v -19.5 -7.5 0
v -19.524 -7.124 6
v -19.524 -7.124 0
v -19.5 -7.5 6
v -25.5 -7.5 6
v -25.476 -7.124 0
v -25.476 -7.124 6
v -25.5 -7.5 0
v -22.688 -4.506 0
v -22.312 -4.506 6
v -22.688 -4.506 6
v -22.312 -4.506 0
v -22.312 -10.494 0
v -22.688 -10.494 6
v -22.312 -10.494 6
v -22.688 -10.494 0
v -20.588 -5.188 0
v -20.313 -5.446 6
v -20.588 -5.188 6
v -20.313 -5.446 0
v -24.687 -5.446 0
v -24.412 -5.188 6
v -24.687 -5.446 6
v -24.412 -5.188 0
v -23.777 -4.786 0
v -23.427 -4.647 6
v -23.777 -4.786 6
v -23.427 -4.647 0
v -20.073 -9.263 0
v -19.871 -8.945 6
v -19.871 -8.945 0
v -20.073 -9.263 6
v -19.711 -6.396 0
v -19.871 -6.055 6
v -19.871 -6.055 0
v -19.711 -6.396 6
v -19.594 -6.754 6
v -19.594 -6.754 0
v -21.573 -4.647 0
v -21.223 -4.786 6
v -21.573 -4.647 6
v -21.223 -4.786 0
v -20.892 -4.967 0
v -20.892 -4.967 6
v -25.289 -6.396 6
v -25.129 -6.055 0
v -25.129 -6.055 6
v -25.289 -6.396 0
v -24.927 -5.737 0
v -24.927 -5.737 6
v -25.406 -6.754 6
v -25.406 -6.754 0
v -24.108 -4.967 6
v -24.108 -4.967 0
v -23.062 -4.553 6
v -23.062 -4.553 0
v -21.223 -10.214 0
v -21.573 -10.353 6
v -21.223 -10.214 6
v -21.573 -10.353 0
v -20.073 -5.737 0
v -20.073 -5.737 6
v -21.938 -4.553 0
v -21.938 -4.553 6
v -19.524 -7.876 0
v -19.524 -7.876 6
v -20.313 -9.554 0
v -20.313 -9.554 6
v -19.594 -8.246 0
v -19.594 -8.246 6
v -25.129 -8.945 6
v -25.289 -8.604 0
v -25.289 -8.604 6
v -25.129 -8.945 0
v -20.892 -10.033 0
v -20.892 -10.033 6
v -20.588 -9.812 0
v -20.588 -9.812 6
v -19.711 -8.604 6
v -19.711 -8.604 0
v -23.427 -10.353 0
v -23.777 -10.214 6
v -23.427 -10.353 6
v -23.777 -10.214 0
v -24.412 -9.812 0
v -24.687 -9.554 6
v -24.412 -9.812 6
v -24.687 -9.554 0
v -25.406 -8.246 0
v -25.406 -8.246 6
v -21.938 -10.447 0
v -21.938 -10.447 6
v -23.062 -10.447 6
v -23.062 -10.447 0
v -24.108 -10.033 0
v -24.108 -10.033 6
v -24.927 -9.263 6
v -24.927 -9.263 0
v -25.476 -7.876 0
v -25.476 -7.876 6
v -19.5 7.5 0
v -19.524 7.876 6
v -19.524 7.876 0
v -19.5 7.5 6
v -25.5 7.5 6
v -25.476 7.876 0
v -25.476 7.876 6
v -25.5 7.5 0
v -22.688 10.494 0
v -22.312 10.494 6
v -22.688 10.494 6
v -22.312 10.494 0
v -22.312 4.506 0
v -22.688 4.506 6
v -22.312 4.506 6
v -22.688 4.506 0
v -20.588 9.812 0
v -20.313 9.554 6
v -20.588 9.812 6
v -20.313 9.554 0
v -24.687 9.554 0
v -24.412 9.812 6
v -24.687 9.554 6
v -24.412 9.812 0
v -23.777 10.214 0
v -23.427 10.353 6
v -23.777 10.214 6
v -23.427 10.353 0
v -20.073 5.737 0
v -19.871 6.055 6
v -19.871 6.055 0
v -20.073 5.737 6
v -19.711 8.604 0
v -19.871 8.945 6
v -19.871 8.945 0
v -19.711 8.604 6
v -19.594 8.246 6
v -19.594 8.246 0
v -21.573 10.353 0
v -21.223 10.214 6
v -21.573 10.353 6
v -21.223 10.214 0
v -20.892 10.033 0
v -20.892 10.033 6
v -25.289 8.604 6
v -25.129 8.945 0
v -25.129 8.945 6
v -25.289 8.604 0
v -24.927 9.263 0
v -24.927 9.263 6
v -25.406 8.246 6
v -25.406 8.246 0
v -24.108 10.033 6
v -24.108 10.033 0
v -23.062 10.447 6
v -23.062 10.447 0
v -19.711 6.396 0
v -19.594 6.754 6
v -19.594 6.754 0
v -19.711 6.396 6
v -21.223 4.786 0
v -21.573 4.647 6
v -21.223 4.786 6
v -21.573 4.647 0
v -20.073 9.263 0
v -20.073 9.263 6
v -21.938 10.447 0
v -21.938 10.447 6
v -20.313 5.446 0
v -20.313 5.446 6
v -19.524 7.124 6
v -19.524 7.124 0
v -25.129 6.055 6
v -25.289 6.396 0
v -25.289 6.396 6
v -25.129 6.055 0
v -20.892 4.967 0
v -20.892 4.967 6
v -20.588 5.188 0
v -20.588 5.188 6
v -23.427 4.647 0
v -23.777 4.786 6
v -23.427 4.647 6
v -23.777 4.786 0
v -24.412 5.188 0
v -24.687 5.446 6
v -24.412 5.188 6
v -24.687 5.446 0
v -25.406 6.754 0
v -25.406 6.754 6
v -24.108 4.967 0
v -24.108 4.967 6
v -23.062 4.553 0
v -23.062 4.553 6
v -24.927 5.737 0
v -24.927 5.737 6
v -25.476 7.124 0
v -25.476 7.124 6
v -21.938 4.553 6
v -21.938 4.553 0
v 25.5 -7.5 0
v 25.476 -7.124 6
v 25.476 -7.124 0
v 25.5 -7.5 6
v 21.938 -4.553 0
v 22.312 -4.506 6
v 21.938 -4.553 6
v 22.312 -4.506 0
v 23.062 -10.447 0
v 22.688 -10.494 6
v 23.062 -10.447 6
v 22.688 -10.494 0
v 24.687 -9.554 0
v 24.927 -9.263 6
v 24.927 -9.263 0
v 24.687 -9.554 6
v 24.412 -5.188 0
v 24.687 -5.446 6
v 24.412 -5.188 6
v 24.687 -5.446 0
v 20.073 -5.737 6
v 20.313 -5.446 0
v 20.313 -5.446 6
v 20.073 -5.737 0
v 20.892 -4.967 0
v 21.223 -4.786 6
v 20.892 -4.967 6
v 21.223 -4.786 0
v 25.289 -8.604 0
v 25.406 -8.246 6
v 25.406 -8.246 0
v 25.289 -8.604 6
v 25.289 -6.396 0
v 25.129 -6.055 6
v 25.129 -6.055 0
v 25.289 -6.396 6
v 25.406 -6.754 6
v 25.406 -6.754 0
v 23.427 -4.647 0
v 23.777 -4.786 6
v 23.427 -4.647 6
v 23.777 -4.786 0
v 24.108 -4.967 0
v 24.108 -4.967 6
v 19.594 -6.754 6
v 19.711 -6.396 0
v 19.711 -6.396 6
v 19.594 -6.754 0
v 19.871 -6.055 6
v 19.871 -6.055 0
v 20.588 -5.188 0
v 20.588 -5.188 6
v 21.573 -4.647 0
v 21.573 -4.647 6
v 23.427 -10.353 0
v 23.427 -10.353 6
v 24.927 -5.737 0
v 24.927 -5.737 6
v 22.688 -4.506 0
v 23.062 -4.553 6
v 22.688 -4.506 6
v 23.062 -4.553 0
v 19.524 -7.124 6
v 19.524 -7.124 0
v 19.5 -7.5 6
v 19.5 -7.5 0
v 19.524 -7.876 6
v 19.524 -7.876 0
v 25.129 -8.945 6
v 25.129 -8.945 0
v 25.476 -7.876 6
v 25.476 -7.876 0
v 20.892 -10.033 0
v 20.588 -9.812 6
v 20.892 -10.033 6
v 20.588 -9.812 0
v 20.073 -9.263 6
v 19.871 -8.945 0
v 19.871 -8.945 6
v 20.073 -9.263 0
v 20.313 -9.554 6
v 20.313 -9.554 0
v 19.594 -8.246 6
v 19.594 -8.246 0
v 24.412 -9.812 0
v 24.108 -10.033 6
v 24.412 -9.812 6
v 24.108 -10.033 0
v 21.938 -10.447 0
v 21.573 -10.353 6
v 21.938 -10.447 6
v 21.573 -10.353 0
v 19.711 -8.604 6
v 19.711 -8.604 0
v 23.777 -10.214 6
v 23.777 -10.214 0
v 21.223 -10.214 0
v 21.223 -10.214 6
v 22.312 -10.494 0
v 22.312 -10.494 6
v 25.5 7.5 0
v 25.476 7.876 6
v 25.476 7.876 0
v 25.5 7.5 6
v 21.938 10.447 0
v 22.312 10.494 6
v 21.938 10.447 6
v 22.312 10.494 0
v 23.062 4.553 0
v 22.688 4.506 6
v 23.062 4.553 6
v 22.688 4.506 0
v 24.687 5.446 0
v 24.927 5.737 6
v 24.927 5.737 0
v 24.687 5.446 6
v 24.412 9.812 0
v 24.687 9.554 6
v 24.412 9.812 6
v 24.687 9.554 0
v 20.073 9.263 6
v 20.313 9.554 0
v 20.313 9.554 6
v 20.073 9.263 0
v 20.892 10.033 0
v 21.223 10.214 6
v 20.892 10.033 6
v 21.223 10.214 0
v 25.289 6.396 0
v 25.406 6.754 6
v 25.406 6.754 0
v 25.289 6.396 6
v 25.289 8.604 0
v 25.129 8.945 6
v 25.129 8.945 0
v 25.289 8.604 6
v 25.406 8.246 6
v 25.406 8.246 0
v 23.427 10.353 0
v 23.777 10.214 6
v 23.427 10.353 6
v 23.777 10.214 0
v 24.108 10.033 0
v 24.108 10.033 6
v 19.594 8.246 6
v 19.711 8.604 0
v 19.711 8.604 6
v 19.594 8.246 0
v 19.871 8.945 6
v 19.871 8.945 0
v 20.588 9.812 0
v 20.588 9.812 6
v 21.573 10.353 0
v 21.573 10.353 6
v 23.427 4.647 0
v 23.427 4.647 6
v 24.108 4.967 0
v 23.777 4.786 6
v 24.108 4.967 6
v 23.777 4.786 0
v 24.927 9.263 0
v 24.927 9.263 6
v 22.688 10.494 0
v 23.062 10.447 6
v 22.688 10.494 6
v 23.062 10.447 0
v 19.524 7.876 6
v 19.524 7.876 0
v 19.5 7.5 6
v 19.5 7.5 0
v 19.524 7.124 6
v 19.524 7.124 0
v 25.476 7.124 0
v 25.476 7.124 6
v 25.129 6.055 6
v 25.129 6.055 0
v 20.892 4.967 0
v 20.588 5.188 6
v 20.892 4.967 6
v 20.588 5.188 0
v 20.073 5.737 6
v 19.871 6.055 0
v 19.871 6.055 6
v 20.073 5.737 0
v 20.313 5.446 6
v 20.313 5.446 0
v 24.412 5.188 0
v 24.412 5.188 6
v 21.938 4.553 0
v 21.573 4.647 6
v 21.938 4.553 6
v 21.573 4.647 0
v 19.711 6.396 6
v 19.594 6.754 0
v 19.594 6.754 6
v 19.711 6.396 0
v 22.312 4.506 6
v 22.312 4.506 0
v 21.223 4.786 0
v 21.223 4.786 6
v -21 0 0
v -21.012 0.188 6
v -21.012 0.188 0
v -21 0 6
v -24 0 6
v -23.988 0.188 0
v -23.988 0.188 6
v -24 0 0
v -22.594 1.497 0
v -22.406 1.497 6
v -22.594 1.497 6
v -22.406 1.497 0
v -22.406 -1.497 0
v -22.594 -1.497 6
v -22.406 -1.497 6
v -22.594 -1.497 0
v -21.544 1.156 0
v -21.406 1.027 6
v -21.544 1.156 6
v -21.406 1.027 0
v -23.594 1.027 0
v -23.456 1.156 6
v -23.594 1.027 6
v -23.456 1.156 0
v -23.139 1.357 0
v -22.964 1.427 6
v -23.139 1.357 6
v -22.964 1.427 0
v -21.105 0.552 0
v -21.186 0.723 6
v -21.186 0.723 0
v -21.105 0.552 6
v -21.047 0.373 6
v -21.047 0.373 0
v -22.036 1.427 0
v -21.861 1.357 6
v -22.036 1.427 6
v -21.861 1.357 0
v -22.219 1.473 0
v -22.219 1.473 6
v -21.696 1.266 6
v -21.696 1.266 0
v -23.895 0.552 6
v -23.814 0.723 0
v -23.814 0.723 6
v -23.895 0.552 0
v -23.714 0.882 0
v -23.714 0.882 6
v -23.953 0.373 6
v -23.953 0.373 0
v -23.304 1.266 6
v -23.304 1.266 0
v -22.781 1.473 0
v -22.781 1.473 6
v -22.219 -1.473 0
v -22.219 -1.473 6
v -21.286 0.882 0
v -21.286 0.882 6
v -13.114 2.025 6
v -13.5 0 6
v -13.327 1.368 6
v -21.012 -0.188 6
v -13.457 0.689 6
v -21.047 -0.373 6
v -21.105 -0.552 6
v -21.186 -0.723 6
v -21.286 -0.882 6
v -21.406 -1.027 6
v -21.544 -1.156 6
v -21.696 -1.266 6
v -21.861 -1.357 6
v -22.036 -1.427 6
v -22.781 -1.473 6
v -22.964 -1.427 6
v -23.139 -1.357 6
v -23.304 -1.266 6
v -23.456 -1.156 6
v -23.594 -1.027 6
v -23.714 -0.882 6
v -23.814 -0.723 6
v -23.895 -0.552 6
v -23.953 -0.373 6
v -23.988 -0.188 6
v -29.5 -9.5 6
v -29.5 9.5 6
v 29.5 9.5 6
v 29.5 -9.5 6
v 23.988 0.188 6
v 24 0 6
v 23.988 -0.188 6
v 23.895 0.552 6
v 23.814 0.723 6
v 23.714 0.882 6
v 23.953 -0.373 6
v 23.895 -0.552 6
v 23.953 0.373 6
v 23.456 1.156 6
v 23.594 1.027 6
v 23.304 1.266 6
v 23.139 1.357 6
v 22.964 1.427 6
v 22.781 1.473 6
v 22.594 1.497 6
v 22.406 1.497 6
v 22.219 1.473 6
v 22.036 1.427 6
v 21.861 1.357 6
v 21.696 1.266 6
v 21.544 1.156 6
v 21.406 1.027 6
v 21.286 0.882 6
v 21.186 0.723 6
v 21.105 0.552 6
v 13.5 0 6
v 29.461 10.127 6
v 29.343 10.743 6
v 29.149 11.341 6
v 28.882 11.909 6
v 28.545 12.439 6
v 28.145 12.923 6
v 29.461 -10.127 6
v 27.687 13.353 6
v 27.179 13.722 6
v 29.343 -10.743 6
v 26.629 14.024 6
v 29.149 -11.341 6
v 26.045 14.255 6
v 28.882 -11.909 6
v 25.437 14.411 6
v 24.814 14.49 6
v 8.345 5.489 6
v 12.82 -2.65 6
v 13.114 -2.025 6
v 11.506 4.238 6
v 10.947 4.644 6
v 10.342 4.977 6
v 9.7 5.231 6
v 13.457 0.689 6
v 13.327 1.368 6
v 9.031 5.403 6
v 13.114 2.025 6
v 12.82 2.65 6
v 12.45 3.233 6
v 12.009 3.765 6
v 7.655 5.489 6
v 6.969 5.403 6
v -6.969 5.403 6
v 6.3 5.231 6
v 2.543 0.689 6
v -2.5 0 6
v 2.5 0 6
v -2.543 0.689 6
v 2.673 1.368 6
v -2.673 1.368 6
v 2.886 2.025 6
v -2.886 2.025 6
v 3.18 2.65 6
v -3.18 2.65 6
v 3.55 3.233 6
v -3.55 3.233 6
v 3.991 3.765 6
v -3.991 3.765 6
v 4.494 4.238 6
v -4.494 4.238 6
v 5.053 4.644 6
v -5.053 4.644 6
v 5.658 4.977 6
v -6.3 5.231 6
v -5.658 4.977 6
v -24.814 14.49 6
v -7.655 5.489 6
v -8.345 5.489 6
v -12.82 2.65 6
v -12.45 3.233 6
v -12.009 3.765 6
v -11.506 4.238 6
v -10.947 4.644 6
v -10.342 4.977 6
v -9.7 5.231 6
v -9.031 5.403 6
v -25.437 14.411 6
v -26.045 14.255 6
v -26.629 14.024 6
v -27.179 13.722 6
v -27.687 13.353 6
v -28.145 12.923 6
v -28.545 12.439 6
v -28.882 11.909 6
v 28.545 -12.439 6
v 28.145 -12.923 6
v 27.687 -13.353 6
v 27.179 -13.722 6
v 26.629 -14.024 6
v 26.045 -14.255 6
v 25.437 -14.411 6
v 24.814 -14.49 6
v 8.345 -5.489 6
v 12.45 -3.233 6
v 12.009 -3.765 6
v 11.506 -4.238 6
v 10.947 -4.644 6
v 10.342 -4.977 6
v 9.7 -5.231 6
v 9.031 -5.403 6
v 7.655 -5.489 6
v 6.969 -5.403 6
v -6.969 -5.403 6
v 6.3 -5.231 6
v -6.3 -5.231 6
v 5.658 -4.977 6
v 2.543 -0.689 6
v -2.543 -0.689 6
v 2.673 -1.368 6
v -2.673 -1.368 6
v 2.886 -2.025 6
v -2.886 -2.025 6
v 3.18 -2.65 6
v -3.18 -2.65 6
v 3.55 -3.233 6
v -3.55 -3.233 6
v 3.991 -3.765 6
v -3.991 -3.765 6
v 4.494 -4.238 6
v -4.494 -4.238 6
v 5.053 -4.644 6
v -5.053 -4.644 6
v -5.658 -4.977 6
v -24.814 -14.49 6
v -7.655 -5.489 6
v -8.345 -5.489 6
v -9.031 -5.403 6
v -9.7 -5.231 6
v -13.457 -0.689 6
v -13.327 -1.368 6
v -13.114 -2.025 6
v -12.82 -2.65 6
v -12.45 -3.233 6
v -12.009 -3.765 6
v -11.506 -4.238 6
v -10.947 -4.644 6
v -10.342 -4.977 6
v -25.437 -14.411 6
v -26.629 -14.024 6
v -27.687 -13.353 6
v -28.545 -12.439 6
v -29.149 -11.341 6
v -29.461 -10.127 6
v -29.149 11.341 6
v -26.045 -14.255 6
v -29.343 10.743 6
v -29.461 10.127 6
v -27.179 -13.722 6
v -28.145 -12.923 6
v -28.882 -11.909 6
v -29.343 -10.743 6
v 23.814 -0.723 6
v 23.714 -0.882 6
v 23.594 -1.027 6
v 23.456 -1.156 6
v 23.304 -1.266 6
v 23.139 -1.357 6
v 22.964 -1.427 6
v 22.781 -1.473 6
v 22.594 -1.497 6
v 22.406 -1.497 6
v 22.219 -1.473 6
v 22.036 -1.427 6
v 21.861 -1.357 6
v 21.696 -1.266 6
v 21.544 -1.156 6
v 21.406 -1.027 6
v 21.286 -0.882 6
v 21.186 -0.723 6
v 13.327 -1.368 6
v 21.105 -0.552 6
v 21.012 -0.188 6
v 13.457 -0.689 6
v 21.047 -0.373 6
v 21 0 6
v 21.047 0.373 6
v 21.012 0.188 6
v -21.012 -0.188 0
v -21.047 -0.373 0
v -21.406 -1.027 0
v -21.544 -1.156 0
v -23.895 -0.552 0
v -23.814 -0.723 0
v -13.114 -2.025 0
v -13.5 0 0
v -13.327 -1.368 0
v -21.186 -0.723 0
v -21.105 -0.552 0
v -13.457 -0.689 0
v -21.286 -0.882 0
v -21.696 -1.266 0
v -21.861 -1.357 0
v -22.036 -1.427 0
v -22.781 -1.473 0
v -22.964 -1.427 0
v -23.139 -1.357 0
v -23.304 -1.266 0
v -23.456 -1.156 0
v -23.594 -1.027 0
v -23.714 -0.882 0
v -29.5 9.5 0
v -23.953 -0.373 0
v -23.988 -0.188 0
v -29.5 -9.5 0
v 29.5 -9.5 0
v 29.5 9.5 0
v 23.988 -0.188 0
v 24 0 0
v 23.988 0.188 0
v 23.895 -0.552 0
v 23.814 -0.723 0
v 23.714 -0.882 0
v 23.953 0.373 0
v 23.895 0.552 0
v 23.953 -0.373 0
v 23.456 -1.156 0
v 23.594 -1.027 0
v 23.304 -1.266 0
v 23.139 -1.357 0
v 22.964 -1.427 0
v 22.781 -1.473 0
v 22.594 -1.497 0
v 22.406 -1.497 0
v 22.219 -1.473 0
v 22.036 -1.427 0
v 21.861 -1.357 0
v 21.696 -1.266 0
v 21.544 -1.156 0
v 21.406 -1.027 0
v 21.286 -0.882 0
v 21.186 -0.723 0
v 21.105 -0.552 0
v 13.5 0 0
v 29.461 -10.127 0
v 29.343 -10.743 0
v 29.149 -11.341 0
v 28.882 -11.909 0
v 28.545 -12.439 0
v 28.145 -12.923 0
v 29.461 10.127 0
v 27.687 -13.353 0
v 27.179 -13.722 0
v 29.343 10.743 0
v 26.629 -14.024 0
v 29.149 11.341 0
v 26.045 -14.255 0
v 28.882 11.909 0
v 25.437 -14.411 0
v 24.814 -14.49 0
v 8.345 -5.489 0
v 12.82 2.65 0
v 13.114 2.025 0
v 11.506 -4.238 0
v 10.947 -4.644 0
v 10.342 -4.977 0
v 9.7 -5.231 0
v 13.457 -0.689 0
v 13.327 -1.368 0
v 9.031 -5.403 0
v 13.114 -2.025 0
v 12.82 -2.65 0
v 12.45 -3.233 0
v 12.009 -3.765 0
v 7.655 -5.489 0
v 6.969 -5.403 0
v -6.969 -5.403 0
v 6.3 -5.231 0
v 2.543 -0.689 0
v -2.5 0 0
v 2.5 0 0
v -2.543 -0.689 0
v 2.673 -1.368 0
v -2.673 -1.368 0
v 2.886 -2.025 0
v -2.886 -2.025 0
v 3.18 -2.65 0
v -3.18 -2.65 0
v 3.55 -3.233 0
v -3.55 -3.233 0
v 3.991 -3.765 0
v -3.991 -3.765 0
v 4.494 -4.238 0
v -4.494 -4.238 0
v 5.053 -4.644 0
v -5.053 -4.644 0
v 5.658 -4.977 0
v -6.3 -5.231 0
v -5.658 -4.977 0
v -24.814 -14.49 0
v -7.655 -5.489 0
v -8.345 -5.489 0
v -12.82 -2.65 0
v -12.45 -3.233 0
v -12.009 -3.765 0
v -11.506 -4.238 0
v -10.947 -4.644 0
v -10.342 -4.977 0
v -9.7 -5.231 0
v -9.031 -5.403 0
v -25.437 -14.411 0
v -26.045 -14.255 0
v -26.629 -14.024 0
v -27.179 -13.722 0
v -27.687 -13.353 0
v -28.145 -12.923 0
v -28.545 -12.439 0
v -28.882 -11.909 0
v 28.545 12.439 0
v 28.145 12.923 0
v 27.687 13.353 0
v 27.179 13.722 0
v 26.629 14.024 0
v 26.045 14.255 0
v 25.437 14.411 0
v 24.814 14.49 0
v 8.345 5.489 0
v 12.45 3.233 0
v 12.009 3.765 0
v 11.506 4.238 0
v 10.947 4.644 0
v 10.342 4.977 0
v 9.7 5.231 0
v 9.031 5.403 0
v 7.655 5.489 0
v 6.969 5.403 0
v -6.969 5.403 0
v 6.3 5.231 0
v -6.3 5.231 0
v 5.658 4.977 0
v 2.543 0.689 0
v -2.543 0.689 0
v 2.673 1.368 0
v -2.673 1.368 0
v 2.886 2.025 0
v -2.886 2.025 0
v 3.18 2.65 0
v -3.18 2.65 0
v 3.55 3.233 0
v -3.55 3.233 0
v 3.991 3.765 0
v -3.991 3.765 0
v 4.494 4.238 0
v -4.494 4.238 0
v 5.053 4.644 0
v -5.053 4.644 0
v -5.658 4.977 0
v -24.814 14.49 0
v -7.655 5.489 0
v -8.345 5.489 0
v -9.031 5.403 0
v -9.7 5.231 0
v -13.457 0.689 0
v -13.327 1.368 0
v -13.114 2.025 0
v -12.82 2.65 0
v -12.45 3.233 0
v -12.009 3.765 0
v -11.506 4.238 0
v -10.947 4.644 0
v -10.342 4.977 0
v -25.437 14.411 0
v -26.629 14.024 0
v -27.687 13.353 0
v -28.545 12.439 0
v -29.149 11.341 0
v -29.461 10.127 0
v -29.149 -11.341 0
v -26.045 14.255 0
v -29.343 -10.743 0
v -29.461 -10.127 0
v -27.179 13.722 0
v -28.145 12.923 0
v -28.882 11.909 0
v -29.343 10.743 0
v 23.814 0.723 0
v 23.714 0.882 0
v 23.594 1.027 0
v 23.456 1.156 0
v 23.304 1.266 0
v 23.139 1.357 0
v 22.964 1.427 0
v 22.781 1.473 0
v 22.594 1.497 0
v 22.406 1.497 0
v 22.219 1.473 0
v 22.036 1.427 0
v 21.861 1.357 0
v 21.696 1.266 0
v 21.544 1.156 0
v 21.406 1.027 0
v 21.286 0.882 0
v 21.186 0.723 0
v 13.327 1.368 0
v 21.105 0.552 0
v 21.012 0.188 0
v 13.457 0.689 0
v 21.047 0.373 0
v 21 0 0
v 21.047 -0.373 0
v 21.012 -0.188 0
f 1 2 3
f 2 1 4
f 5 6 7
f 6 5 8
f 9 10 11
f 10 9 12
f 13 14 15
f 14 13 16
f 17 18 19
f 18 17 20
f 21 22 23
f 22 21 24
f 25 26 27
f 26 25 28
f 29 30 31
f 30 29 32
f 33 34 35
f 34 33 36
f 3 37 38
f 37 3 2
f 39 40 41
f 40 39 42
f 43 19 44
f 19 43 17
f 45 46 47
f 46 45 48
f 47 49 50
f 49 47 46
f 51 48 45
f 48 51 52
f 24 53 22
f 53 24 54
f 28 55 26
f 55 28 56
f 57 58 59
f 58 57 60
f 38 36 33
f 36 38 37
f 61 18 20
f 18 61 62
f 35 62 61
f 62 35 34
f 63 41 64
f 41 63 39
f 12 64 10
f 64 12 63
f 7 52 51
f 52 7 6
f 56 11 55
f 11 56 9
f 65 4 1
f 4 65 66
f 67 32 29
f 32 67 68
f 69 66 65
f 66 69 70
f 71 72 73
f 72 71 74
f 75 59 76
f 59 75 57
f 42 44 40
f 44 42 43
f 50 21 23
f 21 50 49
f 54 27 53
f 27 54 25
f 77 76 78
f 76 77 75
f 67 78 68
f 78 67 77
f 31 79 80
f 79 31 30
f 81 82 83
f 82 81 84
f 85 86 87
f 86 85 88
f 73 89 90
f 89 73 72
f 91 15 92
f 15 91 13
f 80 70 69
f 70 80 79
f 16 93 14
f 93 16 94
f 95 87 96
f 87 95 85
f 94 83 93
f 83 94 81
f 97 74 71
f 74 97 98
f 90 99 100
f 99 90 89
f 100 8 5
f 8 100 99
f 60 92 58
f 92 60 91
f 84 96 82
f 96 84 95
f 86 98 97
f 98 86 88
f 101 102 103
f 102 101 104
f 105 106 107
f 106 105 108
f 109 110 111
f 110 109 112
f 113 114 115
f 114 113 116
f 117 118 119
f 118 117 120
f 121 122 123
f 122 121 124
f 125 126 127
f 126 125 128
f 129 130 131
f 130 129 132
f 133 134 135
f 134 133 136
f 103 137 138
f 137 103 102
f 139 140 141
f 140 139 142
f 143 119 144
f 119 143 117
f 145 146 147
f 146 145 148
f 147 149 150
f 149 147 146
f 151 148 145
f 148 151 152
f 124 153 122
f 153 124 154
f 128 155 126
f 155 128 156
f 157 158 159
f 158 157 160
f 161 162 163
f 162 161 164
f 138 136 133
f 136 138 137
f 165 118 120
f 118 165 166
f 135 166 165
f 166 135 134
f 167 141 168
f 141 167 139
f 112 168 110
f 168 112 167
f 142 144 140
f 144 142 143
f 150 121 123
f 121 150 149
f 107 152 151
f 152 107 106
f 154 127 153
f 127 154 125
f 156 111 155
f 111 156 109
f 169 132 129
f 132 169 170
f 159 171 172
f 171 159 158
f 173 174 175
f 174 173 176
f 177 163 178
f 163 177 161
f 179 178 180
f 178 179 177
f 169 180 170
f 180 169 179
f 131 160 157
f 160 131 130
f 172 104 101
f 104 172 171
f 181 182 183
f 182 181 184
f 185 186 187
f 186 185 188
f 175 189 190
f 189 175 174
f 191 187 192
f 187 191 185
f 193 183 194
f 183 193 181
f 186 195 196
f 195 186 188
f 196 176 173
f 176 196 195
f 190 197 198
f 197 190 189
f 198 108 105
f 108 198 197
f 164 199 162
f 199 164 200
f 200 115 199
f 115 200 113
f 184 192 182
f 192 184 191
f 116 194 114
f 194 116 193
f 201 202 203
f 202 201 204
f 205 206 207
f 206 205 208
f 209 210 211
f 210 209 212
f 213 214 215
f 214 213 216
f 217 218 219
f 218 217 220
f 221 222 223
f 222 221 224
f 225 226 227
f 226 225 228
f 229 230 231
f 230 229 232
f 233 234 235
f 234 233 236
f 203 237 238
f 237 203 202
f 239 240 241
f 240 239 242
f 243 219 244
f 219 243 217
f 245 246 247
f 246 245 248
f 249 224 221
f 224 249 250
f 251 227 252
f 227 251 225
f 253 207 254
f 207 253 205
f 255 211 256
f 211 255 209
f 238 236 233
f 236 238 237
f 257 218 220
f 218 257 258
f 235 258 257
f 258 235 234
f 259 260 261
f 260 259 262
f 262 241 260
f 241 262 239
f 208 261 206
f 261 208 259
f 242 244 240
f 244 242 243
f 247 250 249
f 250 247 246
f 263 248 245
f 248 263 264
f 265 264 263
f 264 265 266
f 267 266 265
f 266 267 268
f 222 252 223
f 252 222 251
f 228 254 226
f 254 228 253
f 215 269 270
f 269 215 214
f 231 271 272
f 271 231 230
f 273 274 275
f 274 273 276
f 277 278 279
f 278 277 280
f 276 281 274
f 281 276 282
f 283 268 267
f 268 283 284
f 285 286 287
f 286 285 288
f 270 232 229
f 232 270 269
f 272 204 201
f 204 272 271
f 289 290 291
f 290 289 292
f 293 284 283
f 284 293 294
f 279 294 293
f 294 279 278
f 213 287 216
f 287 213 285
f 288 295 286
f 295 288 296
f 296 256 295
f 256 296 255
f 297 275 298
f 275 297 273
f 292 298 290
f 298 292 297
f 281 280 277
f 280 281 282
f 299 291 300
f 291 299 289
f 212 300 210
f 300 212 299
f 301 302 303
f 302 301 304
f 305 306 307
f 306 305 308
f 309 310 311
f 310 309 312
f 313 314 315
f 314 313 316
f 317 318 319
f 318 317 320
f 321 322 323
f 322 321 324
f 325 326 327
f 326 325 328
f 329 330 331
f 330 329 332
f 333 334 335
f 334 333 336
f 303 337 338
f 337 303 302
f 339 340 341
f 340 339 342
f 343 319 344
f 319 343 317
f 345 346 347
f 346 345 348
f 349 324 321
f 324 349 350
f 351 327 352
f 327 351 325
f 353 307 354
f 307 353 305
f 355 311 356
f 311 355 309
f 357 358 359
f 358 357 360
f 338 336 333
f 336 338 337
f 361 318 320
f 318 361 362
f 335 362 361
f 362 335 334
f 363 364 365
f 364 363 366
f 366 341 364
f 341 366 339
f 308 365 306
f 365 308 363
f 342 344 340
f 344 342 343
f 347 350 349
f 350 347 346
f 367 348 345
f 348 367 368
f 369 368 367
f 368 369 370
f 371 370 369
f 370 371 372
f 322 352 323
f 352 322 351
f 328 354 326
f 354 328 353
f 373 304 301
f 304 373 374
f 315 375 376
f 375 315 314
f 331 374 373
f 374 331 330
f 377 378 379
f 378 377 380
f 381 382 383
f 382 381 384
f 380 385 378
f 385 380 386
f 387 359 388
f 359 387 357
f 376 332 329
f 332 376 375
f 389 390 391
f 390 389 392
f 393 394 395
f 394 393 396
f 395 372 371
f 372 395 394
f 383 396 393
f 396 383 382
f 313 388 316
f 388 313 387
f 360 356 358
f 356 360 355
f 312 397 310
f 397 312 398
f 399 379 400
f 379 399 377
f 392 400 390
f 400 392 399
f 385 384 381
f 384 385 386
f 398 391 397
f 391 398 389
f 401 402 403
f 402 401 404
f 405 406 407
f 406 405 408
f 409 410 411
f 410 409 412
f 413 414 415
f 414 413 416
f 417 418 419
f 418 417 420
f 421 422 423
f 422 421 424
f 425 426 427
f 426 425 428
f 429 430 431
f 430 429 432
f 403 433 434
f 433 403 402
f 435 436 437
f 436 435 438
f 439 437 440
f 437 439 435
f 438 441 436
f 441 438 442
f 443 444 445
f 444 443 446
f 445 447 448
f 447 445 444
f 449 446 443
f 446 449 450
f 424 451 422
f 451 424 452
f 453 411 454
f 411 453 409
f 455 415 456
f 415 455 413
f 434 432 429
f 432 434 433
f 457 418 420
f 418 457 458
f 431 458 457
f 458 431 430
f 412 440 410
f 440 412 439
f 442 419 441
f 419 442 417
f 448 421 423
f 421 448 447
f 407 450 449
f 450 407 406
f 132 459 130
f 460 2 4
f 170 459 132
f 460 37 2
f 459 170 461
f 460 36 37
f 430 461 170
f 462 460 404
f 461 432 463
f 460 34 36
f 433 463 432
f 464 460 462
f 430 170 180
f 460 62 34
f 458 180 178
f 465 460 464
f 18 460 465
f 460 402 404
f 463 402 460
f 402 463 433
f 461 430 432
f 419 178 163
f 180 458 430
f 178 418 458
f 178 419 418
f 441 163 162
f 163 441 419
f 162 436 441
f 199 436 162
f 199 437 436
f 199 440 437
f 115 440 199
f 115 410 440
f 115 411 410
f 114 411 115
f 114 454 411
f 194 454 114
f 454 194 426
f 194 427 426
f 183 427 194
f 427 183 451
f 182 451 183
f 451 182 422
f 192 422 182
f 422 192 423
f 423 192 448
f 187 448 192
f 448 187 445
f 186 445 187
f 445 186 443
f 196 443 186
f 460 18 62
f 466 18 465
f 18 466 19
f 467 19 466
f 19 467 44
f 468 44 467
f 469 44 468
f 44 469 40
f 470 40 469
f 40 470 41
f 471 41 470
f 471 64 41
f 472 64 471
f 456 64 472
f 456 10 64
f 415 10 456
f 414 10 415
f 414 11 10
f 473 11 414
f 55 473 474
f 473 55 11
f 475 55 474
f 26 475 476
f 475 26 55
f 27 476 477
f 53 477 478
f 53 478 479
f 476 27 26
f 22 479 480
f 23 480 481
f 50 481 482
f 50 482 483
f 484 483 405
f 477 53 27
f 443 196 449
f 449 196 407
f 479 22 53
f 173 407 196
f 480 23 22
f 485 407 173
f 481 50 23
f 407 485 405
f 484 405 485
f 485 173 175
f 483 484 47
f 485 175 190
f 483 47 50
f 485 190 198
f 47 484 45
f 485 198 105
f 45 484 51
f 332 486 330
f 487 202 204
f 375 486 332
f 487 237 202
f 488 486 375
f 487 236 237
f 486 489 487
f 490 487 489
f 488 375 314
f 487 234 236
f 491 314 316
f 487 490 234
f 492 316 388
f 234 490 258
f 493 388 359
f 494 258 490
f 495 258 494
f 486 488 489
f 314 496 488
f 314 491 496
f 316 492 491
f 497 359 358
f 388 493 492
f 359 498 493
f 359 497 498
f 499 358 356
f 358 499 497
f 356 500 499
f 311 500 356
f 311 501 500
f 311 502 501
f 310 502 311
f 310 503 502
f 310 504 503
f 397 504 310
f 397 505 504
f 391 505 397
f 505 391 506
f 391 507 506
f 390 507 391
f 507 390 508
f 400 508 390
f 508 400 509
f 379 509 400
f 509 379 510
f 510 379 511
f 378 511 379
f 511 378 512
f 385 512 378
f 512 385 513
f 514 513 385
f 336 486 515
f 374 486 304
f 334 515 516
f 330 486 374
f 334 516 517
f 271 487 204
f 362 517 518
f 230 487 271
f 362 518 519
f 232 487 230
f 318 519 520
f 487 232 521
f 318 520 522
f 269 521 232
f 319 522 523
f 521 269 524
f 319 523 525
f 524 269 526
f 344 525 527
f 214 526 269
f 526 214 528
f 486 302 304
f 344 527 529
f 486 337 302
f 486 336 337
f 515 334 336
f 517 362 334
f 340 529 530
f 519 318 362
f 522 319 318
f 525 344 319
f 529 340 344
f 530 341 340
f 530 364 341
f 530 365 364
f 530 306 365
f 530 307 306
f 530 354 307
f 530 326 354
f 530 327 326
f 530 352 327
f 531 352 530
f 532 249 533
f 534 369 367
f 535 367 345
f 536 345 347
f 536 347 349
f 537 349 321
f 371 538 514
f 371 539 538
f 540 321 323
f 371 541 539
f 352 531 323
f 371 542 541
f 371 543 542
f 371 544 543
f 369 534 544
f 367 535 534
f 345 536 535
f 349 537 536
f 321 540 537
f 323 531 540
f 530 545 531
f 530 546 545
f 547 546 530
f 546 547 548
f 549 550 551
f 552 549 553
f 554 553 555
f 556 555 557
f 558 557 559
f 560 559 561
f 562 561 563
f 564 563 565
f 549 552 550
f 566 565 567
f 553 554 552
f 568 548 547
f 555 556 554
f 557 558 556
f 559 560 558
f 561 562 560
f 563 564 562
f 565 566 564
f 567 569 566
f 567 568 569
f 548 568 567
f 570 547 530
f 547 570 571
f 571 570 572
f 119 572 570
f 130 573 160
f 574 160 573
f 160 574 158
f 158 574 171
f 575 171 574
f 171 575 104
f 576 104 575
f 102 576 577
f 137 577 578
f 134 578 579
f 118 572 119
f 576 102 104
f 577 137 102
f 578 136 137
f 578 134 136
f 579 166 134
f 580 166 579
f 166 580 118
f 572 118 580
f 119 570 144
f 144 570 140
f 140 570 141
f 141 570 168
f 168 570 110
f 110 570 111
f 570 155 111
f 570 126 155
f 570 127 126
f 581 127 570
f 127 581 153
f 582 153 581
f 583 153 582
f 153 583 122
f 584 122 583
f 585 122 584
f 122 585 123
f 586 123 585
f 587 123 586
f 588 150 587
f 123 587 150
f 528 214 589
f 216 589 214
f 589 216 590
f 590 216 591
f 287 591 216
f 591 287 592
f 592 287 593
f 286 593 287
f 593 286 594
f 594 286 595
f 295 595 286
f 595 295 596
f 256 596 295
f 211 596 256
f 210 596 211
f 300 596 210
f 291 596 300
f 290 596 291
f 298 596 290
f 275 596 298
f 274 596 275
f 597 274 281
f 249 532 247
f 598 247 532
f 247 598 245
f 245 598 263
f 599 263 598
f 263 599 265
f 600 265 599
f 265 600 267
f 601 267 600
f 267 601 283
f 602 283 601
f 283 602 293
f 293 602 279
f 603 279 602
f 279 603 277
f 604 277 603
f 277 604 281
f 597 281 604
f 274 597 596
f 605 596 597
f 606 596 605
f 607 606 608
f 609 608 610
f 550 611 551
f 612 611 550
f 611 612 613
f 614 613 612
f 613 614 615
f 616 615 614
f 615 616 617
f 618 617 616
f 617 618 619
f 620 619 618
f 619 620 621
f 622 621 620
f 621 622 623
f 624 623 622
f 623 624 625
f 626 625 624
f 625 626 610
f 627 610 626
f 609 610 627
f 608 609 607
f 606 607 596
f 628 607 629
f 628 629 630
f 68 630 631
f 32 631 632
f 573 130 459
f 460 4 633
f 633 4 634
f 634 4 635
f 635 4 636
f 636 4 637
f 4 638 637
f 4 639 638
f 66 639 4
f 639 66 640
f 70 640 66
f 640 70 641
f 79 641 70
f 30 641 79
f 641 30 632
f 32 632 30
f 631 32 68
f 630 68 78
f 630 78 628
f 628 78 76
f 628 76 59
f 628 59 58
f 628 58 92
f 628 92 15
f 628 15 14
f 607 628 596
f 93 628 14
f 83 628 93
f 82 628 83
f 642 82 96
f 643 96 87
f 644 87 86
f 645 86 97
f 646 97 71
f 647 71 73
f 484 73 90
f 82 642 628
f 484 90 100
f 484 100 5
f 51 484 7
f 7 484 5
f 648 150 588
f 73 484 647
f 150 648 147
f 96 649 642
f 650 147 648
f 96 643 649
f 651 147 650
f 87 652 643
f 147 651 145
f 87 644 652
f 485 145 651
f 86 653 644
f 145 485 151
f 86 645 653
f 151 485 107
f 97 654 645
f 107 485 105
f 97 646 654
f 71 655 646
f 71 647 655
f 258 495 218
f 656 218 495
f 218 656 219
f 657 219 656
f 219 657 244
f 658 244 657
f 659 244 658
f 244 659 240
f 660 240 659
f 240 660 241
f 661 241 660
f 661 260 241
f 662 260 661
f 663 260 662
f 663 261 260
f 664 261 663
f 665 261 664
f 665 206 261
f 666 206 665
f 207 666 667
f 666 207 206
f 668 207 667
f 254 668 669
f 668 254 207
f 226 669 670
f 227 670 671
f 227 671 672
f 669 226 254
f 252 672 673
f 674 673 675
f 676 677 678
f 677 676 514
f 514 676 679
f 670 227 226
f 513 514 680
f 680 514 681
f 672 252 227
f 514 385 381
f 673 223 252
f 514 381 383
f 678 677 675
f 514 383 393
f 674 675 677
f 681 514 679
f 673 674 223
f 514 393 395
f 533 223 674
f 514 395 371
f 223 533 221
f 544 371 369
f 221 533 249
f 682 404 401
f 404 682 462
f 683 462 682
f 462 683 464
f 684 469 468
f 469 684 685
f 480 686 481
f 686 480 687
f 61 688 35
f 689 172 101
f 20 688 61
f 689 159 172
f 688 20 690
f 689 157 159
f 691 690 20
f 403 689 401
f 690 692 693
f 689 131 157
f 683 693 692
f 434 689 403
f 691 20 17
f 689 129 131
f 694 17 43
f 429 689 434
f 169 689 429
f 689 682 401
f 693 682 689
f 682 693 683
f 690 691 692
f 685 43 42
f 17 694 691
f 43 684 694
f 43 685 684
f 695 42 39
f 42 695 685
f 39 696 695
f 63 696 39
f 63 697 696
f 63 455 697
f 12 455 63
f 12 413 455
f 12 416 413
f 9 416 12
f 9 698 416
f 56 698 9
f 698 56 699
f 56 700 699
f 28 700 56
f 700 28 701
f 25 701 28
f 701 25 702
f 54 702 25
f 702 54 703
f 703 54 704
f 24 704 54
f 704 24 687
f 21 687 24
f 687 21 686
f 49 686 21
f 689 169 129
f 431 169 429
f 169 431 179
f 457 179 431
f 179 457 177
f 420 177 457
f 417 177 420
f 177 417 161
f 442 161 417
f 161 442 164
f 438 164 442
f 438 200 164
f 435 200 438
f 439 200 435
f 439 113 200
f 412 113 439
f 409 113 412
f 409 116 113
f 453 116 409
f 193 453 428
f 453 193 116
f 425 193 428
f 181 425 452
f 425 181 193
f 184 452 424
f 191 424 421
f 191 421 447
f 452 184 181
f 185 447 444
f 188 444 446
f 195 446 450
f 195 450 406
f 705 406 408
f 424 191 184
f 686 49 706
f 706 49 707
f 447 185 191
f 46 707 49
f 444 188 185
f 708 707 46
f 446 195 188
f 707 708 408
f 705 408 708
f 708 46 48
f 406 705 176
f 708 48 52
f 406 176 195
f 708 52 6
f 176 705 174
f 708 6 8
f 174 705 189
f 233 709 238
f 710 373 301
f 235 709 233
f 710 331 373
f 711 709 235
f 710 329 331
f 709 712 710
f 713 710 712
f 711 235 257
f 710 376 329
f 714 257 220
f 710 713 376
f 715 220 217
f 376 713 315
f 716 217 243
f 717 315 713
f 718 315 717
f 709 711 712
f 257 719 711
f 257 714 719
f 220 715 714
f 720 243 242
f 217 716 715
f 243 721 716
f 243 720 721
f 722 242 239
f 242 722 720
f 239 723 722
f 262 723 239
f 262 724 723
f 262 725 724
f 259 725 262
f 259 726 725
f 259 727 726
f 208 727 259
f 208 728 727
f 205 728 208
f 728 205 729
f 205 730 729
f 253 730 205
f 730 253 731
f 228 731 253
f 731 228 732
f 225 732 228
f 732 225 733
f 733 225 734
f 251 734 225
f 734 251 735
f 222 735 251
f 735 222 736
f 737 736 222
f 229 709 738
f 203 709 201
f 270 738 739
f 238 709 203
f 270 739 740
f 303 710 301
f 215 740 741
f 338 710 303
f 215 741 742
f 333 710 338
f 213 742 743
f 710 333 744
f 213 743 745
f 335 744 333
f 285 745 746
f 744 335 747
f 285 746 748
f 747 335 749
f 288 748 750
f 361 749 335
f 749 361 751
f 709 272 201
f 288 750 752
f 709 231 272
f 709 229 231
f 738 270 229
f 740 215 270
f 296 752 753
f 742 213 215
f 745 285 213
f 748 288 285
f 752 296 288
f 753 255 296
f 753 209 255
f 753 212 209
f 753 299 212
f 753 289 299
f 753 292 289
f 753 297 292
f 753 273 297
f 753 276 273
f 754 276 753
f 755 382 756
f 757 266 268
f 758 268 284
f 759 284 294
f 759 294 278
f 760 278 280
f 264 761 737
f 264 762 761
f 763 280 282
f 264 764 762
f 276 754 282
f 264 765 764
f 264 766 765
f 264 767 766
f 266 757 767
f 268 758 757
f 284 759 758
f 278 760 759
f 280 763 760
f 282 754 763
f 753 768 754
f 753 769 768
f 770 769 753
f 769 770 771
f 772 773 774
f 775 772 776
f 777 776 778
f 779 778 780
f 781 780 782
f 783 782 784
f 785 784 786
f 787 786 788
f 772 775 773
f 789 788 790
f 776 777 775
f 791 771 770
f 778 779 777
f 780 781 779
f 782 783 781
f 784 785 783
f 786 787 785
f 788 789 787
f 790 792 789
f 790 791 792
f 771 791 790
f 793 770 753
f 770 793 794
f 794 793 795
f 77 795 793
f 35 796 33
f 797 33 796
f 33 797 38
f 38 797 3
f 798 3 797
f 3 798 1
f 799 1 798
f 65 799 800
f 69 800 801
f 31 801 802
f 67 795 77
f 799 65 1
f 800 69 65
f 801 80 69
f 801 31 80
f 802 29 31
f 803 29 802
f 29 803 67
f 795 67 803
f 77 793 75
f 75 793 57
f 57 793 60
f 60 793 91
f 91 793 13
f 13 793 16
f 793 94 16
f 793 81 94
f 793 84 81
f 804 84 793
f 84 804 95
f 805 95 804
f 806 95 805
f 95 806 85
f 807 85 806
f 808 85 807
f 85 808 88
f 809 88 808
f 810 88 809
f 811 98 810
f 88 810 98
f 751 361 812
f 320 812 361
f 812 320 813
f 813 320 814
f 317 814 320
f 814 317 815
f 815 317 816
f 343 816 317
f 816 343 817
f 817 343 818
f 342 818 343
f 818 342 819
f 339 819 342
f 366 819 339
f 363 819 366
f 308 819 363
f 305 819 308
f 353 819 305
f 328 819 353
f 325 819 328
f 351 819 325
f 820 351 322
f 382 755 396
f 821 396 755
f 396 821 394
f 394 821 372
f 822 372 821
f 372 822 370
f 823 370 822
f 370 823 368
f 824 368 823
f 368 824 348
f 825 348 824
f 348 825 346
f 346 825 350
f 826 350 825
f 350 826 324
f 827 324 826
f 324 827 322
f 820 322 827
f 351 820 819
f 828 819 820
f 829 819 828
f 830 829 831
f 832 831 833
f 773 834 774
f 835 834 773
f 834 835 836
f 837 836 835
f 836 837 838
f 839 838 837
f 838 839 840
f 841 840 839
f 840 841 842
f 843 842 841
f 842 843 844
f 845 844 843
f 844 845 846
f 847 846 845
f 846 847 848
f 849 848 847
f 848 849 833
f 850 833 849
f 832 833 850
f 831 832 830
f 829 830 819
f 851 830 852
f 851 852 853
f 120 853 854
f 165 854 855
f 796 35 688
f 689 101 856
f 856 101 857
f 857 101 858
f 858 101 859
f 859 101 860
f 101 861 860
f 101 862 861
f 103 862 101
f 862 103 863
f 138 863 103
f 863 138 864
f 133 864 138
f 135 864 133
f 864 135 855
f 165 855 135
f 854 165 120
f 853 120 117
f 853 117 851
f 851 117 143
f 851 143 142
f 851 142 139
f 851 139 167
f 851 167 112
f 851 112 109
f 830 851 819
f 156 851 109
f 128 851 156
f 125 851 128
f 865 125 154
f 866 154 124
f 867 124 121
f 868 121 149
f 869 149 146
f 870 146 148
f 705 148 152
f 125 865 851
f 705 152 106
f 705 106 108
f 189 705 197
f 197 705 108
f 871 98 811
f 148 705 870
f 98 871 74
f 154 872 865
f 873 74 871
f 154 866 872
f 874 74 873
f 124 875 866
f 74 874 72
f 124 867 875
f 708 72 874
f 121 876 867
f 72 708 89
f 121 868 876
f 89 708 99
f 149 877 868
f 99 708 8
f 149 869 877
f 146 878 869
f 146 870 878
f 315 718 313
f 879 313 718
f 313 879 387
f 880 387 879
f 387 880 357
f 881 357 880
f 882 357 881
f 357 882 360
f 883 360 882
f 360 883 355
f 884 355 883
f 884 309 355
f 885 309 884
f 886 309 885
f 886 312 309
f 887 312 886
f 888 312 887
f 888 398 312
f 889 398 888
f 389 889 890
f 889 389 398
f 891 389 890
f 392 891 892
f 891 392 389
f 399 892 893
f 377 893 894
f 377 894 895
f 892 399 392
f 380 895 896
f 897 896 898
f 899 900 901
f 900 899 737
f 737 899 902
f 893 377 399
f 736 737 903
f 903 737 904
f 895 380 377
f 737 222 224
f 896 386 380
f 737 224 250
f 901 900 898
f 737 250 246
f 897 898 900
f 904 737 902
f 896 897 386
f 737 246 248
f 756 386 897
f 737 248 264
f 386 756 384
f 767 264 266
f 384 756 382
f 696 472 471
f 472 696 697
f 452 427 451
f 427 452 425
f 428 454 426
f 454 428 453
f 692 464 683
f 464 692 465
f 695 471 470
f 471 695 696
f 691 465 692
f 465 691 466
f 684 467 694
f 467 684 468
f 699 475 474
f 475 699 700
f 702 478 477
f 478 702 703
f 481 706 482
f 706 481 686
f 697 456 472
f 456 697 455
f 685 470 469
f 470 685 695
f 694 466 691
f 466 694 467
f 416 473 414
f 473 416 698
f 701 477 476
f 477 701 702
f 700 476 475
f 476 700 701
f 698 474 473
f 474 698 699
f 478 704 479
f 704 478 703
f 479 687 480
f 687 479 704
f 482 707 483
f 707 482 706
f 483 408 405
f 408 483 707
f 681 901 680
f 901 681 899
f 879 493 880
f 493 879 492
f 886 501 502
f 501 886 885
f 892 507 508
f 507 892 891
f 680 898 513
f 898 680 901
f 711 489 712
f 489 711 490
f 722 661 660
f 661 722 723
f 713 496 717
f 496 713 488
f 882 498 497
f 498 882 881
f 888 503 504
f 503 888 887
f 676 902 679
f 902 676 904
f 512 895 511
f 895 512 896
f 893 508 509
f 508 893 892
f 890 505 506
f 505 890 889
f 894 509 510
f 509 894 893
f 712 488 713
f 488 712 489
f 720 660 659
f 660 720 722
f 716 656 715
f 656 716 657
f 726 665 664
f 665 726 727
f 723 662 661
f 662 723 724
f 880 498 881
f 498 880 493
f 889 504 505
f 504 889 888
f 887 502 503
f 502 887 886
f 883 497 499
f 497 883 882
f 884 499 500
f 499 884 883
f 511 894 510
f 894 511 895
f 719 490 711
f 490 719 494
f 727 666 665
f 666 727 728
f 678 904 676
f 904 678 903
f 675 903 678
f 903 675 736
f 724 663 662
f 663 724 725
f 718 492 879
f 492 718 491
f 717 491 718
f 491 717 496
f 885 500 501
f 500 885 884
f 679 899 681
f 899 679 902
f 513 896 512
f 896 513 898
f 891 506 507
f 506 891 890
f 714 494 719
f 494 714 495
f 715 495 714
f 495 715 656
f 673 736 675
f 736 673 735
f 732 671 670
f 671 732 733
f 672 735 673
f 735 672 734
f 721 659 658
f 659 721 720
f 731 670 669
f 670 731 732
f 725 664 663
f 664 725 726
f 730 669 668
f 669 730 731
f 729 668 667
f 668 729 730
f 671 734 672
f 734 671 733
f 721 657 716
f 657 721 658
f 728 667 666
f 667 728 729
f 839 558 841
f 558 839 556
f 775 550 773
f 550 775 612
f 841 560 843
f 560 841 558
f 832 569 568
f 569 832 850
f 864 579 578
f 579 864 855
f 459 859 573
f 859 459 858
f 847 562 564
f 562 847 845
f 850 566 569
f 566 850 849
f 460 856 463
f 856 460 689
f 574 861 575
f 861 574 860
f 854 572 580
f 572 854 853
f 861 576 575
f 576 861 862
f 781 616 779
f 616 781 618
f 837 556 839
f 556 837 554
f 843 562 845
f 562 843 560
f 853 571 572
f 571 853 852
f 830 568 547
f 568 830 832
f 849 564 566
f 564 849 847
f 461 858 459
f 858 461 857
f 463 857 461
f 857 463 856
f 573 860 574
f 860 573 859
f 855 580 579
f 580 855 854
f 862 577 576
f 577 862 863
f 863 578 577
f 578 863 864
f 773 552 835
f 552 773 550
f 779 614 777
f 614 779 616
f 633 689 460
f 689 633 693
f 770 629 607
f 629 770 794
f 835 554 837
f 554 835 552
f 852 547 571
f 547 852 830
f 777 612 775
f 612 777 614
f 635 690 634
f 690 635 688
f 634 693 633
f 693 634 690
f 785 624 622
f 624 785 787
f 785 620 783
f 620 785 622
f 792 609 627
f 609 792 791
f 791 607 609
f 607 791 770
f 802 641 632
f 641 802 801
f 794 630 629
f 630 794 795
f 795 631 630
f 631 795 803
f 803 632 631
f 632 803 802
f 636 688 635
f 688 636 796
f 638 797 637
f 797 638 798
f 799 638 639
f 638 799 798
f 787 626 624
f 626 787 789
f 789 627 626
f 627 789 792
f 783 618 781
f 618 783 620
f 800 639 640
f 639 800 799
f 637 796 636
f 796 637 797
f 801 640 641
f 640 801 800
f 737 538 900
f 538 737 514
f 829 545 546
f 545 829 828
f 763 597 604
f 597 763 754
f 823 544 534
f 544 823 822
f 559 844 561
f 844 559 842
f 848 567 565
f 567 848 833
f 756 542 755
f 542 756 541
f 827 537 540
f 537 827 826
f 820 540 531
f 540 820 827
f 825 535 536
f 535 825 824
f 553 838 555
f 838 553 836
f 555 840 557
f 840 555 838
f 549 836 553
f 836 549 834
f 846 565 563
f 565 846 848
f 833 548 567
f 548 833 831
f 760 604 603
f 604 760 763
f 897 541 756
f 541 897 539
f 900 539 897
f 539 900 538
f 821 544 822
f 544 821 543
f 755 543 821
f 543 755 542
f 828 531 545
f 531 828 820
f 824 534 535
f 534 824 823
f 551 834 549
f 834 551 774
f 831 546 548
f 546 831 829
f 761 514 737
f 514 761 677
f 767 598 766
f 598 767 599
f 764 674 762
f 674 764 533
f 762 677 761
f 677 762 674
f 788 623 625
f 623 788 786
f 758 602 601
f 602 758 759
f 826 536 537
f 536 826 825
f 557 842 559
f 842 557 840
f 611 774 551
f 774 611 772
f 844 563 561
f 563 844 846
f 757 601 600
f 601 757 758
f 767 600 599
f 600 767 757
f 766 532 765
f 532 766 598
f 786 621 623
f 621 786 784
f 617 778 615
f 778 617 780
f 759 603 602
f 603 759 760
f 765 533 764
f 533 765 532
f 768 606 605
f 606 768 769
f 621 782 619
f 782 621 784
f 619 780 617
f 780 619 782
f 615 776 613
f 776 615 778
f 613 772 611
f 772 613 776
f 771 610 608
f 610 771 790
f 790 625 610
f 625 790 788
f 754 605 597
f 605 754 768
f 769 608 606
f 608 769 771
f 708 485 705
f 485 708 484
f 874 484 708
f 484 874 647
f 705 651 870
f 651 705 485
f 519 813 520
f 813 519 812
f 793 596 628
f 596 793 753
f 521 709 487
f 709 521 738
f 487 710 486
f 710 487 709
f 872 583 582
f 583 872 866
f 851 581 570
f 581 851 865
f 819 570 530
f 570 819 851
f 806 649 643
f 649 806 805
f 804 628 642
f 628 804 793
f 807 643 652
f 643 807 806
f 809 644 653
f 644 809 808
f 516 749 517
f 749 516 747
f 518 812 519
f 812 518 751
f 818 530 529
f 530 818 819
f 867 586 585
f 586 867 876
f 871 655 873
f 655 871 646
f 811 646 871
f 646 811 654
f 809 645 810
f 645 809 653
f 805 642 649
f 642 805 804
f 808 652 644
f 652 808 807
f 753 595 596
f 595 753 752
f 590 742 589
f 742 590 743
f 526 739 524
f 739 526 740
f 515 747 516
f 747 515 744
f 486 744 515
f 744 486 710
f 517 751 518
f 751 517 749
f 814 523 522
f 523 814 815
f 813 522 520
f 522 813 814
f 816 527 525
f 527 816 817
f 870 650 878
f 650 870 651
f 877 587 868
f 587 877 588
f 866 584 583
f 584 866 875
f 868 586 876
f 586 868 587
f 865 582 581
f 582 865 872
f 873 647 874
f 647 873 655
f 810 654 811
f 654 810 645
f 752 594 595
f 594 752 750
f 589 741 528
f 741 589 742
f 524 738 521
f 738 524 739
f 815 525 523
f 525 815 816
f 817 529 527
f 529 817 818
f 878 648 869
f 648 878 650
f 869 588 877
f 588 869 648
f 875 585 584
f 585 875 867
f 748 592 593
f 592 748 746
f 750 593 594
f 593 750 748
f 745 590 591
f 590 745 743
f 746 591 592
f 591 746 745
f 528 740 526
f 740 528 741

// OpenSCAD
$fn = 50;


difference() {
	union() {
		hull() {
			translate(v = [-24.5000000000, 9.5000000000, 0]) {
				cylinder(h = 6, r = 5);
			}
			translate(v = [24.5000000000, 9.5000000000, 0]) {
				cylinder(h = 6, r = 5);
			}
			translate(v = [-24.5000000000, -9.5000000000, 0]) {
				cylinder(h = 6, r = 5);
			}
			translate(v = [24.5000000000, -9.5000000000, 0]) {
				cylinder(h = 6, r = 5);
			}
		}
	}
	union() {
		#translate(v = [-22.5000000000, -7.5000000000, 0]) {
			cylinder(h = 6, r = 3.0000000000);
		}
		#translate(v = [-22.5000000000, 7.5000000000, 0]) {
			cylinder(h = 6, r = 3.0000000000);
		}
		#translate(v = [22.5000000000, -7.5000000000, 0]) {
			cylinder(h = 6, r = 3.0000000000);
		}
		#translate(v = [22.5000000000, 7.5000000000, 0]) {
			cylinder(h = 6, r = 3.0000000000);
		}
		#translate(v = [-22.5000000000, -7.5000000000, -100.0000000000]) {
			cylinder(h = 200, r = 3.0000000000);
		}
		#translate(v = [-22.5000000000, 7.5000000000, -100.0000000000]) {
			cylinder(h = 200, r = 3.0000000000);
		}
		#translate(v = [22.5000000000, -7.5000000000, -100.0000000000]) {
			cylinder(h = 200, r = 3.0000000000);
		}
		#translate(v = [22.5000000000, 7.5000000000, -100.0000000000]) {
			cylinder(h = 200, r = 3.0000000000);
		}
		#translate(v = [-22.5000000000, -7.5000000000, 0]) {
			cylinder(h = 6, r = 1.5000000000);
		}
		#translate(v = [-22.5000000000, 0.0000000000, 0]) {
			cylinder(h = 6, r = 1.5000000000);
		}
		#translate(v = [-22.5000000000, 7.5000000000, 0]) {
			cylinder(h = 6, r = 1.5000000000);
		}
		#translate(v = [22.5000000000, -7.5000000000, 0]) {
			cylinder(h = 6, r = 1.5000000000);
		}
		#translate(v = [22.5000000000, 0.0000000000, 0]) {
			cylinder(h = 6, r = 1.5000000000);
		}
		#translate(v = [22.5000000000, 7.5000000000, 0]) {
			cylinder(h = 6, r = 1.5000000000);
		}
		#translate(v = [-22.5000000000, -7.5000000000, 0]) {
			cylinder(h = 6, r = 1.5000000000);
		}
		#translate(v = [-22.5000000000, 0.0000000000, 0]) {
			cylinder(h = 6, r = 1.5000000000);
		}
		#translate(v = [-22.5000000000, 7.5000000000, 0]) {
			cylinder(h = 6, r = 1.5000000000);
		}
		#translate(v = [22.5000000000, -7.5000000000, 0]) {
			cylinder(h = 6, r = 1.5000000000);
		}
		#translate(v = [22.5000000000, 0.0000000000, 0]) {
			cylinder(h = 6, r = 1.5000000000);
		}
		#translate(v = [22.5000000000, 7.5000000000, 0]) {
			cylinder(h = 6, r = 1.5000000000);
		}
		#translate(v = [-22.5000000000, -7.5000000000, 0]) {
			cylinder(h = 6, r = 1.5000000000);
		}
		#translate(v = [-22.5000000000, 0.0000000000, 0]) {
			cylinder(h = 6, r = 1.5000000000);
		}
		#translate(v = [-22.5000000000, 7.5000000000, 0]) {
			cylinder(h = 6, r = 1.5000000000);
		}
		#translate(v = [22.5000000000, -7.5000000000, 0]) {
			cylinder(h = 6, r = 1.5000000000);
		}
		#translate(v = [22.5000000000, 0.0000000000, 0]) {
			cylinder(h = 6, r = 1.5000000000);
		}
		#translate(v = [22.5000000000, 7.5000000000, 0]) {
			cylinder(h = 6, r = 1.5000000000);
		}
		#translate(v = [-8.0000000000, 0, 0]) {
			cylinder(h = 6, r = 5.5000000000);
		}
		#translate(v = [8.0000000000, 0, 0]) {
			cylinder(h = 6, r = 5.5000000000);
		}
	}
}
